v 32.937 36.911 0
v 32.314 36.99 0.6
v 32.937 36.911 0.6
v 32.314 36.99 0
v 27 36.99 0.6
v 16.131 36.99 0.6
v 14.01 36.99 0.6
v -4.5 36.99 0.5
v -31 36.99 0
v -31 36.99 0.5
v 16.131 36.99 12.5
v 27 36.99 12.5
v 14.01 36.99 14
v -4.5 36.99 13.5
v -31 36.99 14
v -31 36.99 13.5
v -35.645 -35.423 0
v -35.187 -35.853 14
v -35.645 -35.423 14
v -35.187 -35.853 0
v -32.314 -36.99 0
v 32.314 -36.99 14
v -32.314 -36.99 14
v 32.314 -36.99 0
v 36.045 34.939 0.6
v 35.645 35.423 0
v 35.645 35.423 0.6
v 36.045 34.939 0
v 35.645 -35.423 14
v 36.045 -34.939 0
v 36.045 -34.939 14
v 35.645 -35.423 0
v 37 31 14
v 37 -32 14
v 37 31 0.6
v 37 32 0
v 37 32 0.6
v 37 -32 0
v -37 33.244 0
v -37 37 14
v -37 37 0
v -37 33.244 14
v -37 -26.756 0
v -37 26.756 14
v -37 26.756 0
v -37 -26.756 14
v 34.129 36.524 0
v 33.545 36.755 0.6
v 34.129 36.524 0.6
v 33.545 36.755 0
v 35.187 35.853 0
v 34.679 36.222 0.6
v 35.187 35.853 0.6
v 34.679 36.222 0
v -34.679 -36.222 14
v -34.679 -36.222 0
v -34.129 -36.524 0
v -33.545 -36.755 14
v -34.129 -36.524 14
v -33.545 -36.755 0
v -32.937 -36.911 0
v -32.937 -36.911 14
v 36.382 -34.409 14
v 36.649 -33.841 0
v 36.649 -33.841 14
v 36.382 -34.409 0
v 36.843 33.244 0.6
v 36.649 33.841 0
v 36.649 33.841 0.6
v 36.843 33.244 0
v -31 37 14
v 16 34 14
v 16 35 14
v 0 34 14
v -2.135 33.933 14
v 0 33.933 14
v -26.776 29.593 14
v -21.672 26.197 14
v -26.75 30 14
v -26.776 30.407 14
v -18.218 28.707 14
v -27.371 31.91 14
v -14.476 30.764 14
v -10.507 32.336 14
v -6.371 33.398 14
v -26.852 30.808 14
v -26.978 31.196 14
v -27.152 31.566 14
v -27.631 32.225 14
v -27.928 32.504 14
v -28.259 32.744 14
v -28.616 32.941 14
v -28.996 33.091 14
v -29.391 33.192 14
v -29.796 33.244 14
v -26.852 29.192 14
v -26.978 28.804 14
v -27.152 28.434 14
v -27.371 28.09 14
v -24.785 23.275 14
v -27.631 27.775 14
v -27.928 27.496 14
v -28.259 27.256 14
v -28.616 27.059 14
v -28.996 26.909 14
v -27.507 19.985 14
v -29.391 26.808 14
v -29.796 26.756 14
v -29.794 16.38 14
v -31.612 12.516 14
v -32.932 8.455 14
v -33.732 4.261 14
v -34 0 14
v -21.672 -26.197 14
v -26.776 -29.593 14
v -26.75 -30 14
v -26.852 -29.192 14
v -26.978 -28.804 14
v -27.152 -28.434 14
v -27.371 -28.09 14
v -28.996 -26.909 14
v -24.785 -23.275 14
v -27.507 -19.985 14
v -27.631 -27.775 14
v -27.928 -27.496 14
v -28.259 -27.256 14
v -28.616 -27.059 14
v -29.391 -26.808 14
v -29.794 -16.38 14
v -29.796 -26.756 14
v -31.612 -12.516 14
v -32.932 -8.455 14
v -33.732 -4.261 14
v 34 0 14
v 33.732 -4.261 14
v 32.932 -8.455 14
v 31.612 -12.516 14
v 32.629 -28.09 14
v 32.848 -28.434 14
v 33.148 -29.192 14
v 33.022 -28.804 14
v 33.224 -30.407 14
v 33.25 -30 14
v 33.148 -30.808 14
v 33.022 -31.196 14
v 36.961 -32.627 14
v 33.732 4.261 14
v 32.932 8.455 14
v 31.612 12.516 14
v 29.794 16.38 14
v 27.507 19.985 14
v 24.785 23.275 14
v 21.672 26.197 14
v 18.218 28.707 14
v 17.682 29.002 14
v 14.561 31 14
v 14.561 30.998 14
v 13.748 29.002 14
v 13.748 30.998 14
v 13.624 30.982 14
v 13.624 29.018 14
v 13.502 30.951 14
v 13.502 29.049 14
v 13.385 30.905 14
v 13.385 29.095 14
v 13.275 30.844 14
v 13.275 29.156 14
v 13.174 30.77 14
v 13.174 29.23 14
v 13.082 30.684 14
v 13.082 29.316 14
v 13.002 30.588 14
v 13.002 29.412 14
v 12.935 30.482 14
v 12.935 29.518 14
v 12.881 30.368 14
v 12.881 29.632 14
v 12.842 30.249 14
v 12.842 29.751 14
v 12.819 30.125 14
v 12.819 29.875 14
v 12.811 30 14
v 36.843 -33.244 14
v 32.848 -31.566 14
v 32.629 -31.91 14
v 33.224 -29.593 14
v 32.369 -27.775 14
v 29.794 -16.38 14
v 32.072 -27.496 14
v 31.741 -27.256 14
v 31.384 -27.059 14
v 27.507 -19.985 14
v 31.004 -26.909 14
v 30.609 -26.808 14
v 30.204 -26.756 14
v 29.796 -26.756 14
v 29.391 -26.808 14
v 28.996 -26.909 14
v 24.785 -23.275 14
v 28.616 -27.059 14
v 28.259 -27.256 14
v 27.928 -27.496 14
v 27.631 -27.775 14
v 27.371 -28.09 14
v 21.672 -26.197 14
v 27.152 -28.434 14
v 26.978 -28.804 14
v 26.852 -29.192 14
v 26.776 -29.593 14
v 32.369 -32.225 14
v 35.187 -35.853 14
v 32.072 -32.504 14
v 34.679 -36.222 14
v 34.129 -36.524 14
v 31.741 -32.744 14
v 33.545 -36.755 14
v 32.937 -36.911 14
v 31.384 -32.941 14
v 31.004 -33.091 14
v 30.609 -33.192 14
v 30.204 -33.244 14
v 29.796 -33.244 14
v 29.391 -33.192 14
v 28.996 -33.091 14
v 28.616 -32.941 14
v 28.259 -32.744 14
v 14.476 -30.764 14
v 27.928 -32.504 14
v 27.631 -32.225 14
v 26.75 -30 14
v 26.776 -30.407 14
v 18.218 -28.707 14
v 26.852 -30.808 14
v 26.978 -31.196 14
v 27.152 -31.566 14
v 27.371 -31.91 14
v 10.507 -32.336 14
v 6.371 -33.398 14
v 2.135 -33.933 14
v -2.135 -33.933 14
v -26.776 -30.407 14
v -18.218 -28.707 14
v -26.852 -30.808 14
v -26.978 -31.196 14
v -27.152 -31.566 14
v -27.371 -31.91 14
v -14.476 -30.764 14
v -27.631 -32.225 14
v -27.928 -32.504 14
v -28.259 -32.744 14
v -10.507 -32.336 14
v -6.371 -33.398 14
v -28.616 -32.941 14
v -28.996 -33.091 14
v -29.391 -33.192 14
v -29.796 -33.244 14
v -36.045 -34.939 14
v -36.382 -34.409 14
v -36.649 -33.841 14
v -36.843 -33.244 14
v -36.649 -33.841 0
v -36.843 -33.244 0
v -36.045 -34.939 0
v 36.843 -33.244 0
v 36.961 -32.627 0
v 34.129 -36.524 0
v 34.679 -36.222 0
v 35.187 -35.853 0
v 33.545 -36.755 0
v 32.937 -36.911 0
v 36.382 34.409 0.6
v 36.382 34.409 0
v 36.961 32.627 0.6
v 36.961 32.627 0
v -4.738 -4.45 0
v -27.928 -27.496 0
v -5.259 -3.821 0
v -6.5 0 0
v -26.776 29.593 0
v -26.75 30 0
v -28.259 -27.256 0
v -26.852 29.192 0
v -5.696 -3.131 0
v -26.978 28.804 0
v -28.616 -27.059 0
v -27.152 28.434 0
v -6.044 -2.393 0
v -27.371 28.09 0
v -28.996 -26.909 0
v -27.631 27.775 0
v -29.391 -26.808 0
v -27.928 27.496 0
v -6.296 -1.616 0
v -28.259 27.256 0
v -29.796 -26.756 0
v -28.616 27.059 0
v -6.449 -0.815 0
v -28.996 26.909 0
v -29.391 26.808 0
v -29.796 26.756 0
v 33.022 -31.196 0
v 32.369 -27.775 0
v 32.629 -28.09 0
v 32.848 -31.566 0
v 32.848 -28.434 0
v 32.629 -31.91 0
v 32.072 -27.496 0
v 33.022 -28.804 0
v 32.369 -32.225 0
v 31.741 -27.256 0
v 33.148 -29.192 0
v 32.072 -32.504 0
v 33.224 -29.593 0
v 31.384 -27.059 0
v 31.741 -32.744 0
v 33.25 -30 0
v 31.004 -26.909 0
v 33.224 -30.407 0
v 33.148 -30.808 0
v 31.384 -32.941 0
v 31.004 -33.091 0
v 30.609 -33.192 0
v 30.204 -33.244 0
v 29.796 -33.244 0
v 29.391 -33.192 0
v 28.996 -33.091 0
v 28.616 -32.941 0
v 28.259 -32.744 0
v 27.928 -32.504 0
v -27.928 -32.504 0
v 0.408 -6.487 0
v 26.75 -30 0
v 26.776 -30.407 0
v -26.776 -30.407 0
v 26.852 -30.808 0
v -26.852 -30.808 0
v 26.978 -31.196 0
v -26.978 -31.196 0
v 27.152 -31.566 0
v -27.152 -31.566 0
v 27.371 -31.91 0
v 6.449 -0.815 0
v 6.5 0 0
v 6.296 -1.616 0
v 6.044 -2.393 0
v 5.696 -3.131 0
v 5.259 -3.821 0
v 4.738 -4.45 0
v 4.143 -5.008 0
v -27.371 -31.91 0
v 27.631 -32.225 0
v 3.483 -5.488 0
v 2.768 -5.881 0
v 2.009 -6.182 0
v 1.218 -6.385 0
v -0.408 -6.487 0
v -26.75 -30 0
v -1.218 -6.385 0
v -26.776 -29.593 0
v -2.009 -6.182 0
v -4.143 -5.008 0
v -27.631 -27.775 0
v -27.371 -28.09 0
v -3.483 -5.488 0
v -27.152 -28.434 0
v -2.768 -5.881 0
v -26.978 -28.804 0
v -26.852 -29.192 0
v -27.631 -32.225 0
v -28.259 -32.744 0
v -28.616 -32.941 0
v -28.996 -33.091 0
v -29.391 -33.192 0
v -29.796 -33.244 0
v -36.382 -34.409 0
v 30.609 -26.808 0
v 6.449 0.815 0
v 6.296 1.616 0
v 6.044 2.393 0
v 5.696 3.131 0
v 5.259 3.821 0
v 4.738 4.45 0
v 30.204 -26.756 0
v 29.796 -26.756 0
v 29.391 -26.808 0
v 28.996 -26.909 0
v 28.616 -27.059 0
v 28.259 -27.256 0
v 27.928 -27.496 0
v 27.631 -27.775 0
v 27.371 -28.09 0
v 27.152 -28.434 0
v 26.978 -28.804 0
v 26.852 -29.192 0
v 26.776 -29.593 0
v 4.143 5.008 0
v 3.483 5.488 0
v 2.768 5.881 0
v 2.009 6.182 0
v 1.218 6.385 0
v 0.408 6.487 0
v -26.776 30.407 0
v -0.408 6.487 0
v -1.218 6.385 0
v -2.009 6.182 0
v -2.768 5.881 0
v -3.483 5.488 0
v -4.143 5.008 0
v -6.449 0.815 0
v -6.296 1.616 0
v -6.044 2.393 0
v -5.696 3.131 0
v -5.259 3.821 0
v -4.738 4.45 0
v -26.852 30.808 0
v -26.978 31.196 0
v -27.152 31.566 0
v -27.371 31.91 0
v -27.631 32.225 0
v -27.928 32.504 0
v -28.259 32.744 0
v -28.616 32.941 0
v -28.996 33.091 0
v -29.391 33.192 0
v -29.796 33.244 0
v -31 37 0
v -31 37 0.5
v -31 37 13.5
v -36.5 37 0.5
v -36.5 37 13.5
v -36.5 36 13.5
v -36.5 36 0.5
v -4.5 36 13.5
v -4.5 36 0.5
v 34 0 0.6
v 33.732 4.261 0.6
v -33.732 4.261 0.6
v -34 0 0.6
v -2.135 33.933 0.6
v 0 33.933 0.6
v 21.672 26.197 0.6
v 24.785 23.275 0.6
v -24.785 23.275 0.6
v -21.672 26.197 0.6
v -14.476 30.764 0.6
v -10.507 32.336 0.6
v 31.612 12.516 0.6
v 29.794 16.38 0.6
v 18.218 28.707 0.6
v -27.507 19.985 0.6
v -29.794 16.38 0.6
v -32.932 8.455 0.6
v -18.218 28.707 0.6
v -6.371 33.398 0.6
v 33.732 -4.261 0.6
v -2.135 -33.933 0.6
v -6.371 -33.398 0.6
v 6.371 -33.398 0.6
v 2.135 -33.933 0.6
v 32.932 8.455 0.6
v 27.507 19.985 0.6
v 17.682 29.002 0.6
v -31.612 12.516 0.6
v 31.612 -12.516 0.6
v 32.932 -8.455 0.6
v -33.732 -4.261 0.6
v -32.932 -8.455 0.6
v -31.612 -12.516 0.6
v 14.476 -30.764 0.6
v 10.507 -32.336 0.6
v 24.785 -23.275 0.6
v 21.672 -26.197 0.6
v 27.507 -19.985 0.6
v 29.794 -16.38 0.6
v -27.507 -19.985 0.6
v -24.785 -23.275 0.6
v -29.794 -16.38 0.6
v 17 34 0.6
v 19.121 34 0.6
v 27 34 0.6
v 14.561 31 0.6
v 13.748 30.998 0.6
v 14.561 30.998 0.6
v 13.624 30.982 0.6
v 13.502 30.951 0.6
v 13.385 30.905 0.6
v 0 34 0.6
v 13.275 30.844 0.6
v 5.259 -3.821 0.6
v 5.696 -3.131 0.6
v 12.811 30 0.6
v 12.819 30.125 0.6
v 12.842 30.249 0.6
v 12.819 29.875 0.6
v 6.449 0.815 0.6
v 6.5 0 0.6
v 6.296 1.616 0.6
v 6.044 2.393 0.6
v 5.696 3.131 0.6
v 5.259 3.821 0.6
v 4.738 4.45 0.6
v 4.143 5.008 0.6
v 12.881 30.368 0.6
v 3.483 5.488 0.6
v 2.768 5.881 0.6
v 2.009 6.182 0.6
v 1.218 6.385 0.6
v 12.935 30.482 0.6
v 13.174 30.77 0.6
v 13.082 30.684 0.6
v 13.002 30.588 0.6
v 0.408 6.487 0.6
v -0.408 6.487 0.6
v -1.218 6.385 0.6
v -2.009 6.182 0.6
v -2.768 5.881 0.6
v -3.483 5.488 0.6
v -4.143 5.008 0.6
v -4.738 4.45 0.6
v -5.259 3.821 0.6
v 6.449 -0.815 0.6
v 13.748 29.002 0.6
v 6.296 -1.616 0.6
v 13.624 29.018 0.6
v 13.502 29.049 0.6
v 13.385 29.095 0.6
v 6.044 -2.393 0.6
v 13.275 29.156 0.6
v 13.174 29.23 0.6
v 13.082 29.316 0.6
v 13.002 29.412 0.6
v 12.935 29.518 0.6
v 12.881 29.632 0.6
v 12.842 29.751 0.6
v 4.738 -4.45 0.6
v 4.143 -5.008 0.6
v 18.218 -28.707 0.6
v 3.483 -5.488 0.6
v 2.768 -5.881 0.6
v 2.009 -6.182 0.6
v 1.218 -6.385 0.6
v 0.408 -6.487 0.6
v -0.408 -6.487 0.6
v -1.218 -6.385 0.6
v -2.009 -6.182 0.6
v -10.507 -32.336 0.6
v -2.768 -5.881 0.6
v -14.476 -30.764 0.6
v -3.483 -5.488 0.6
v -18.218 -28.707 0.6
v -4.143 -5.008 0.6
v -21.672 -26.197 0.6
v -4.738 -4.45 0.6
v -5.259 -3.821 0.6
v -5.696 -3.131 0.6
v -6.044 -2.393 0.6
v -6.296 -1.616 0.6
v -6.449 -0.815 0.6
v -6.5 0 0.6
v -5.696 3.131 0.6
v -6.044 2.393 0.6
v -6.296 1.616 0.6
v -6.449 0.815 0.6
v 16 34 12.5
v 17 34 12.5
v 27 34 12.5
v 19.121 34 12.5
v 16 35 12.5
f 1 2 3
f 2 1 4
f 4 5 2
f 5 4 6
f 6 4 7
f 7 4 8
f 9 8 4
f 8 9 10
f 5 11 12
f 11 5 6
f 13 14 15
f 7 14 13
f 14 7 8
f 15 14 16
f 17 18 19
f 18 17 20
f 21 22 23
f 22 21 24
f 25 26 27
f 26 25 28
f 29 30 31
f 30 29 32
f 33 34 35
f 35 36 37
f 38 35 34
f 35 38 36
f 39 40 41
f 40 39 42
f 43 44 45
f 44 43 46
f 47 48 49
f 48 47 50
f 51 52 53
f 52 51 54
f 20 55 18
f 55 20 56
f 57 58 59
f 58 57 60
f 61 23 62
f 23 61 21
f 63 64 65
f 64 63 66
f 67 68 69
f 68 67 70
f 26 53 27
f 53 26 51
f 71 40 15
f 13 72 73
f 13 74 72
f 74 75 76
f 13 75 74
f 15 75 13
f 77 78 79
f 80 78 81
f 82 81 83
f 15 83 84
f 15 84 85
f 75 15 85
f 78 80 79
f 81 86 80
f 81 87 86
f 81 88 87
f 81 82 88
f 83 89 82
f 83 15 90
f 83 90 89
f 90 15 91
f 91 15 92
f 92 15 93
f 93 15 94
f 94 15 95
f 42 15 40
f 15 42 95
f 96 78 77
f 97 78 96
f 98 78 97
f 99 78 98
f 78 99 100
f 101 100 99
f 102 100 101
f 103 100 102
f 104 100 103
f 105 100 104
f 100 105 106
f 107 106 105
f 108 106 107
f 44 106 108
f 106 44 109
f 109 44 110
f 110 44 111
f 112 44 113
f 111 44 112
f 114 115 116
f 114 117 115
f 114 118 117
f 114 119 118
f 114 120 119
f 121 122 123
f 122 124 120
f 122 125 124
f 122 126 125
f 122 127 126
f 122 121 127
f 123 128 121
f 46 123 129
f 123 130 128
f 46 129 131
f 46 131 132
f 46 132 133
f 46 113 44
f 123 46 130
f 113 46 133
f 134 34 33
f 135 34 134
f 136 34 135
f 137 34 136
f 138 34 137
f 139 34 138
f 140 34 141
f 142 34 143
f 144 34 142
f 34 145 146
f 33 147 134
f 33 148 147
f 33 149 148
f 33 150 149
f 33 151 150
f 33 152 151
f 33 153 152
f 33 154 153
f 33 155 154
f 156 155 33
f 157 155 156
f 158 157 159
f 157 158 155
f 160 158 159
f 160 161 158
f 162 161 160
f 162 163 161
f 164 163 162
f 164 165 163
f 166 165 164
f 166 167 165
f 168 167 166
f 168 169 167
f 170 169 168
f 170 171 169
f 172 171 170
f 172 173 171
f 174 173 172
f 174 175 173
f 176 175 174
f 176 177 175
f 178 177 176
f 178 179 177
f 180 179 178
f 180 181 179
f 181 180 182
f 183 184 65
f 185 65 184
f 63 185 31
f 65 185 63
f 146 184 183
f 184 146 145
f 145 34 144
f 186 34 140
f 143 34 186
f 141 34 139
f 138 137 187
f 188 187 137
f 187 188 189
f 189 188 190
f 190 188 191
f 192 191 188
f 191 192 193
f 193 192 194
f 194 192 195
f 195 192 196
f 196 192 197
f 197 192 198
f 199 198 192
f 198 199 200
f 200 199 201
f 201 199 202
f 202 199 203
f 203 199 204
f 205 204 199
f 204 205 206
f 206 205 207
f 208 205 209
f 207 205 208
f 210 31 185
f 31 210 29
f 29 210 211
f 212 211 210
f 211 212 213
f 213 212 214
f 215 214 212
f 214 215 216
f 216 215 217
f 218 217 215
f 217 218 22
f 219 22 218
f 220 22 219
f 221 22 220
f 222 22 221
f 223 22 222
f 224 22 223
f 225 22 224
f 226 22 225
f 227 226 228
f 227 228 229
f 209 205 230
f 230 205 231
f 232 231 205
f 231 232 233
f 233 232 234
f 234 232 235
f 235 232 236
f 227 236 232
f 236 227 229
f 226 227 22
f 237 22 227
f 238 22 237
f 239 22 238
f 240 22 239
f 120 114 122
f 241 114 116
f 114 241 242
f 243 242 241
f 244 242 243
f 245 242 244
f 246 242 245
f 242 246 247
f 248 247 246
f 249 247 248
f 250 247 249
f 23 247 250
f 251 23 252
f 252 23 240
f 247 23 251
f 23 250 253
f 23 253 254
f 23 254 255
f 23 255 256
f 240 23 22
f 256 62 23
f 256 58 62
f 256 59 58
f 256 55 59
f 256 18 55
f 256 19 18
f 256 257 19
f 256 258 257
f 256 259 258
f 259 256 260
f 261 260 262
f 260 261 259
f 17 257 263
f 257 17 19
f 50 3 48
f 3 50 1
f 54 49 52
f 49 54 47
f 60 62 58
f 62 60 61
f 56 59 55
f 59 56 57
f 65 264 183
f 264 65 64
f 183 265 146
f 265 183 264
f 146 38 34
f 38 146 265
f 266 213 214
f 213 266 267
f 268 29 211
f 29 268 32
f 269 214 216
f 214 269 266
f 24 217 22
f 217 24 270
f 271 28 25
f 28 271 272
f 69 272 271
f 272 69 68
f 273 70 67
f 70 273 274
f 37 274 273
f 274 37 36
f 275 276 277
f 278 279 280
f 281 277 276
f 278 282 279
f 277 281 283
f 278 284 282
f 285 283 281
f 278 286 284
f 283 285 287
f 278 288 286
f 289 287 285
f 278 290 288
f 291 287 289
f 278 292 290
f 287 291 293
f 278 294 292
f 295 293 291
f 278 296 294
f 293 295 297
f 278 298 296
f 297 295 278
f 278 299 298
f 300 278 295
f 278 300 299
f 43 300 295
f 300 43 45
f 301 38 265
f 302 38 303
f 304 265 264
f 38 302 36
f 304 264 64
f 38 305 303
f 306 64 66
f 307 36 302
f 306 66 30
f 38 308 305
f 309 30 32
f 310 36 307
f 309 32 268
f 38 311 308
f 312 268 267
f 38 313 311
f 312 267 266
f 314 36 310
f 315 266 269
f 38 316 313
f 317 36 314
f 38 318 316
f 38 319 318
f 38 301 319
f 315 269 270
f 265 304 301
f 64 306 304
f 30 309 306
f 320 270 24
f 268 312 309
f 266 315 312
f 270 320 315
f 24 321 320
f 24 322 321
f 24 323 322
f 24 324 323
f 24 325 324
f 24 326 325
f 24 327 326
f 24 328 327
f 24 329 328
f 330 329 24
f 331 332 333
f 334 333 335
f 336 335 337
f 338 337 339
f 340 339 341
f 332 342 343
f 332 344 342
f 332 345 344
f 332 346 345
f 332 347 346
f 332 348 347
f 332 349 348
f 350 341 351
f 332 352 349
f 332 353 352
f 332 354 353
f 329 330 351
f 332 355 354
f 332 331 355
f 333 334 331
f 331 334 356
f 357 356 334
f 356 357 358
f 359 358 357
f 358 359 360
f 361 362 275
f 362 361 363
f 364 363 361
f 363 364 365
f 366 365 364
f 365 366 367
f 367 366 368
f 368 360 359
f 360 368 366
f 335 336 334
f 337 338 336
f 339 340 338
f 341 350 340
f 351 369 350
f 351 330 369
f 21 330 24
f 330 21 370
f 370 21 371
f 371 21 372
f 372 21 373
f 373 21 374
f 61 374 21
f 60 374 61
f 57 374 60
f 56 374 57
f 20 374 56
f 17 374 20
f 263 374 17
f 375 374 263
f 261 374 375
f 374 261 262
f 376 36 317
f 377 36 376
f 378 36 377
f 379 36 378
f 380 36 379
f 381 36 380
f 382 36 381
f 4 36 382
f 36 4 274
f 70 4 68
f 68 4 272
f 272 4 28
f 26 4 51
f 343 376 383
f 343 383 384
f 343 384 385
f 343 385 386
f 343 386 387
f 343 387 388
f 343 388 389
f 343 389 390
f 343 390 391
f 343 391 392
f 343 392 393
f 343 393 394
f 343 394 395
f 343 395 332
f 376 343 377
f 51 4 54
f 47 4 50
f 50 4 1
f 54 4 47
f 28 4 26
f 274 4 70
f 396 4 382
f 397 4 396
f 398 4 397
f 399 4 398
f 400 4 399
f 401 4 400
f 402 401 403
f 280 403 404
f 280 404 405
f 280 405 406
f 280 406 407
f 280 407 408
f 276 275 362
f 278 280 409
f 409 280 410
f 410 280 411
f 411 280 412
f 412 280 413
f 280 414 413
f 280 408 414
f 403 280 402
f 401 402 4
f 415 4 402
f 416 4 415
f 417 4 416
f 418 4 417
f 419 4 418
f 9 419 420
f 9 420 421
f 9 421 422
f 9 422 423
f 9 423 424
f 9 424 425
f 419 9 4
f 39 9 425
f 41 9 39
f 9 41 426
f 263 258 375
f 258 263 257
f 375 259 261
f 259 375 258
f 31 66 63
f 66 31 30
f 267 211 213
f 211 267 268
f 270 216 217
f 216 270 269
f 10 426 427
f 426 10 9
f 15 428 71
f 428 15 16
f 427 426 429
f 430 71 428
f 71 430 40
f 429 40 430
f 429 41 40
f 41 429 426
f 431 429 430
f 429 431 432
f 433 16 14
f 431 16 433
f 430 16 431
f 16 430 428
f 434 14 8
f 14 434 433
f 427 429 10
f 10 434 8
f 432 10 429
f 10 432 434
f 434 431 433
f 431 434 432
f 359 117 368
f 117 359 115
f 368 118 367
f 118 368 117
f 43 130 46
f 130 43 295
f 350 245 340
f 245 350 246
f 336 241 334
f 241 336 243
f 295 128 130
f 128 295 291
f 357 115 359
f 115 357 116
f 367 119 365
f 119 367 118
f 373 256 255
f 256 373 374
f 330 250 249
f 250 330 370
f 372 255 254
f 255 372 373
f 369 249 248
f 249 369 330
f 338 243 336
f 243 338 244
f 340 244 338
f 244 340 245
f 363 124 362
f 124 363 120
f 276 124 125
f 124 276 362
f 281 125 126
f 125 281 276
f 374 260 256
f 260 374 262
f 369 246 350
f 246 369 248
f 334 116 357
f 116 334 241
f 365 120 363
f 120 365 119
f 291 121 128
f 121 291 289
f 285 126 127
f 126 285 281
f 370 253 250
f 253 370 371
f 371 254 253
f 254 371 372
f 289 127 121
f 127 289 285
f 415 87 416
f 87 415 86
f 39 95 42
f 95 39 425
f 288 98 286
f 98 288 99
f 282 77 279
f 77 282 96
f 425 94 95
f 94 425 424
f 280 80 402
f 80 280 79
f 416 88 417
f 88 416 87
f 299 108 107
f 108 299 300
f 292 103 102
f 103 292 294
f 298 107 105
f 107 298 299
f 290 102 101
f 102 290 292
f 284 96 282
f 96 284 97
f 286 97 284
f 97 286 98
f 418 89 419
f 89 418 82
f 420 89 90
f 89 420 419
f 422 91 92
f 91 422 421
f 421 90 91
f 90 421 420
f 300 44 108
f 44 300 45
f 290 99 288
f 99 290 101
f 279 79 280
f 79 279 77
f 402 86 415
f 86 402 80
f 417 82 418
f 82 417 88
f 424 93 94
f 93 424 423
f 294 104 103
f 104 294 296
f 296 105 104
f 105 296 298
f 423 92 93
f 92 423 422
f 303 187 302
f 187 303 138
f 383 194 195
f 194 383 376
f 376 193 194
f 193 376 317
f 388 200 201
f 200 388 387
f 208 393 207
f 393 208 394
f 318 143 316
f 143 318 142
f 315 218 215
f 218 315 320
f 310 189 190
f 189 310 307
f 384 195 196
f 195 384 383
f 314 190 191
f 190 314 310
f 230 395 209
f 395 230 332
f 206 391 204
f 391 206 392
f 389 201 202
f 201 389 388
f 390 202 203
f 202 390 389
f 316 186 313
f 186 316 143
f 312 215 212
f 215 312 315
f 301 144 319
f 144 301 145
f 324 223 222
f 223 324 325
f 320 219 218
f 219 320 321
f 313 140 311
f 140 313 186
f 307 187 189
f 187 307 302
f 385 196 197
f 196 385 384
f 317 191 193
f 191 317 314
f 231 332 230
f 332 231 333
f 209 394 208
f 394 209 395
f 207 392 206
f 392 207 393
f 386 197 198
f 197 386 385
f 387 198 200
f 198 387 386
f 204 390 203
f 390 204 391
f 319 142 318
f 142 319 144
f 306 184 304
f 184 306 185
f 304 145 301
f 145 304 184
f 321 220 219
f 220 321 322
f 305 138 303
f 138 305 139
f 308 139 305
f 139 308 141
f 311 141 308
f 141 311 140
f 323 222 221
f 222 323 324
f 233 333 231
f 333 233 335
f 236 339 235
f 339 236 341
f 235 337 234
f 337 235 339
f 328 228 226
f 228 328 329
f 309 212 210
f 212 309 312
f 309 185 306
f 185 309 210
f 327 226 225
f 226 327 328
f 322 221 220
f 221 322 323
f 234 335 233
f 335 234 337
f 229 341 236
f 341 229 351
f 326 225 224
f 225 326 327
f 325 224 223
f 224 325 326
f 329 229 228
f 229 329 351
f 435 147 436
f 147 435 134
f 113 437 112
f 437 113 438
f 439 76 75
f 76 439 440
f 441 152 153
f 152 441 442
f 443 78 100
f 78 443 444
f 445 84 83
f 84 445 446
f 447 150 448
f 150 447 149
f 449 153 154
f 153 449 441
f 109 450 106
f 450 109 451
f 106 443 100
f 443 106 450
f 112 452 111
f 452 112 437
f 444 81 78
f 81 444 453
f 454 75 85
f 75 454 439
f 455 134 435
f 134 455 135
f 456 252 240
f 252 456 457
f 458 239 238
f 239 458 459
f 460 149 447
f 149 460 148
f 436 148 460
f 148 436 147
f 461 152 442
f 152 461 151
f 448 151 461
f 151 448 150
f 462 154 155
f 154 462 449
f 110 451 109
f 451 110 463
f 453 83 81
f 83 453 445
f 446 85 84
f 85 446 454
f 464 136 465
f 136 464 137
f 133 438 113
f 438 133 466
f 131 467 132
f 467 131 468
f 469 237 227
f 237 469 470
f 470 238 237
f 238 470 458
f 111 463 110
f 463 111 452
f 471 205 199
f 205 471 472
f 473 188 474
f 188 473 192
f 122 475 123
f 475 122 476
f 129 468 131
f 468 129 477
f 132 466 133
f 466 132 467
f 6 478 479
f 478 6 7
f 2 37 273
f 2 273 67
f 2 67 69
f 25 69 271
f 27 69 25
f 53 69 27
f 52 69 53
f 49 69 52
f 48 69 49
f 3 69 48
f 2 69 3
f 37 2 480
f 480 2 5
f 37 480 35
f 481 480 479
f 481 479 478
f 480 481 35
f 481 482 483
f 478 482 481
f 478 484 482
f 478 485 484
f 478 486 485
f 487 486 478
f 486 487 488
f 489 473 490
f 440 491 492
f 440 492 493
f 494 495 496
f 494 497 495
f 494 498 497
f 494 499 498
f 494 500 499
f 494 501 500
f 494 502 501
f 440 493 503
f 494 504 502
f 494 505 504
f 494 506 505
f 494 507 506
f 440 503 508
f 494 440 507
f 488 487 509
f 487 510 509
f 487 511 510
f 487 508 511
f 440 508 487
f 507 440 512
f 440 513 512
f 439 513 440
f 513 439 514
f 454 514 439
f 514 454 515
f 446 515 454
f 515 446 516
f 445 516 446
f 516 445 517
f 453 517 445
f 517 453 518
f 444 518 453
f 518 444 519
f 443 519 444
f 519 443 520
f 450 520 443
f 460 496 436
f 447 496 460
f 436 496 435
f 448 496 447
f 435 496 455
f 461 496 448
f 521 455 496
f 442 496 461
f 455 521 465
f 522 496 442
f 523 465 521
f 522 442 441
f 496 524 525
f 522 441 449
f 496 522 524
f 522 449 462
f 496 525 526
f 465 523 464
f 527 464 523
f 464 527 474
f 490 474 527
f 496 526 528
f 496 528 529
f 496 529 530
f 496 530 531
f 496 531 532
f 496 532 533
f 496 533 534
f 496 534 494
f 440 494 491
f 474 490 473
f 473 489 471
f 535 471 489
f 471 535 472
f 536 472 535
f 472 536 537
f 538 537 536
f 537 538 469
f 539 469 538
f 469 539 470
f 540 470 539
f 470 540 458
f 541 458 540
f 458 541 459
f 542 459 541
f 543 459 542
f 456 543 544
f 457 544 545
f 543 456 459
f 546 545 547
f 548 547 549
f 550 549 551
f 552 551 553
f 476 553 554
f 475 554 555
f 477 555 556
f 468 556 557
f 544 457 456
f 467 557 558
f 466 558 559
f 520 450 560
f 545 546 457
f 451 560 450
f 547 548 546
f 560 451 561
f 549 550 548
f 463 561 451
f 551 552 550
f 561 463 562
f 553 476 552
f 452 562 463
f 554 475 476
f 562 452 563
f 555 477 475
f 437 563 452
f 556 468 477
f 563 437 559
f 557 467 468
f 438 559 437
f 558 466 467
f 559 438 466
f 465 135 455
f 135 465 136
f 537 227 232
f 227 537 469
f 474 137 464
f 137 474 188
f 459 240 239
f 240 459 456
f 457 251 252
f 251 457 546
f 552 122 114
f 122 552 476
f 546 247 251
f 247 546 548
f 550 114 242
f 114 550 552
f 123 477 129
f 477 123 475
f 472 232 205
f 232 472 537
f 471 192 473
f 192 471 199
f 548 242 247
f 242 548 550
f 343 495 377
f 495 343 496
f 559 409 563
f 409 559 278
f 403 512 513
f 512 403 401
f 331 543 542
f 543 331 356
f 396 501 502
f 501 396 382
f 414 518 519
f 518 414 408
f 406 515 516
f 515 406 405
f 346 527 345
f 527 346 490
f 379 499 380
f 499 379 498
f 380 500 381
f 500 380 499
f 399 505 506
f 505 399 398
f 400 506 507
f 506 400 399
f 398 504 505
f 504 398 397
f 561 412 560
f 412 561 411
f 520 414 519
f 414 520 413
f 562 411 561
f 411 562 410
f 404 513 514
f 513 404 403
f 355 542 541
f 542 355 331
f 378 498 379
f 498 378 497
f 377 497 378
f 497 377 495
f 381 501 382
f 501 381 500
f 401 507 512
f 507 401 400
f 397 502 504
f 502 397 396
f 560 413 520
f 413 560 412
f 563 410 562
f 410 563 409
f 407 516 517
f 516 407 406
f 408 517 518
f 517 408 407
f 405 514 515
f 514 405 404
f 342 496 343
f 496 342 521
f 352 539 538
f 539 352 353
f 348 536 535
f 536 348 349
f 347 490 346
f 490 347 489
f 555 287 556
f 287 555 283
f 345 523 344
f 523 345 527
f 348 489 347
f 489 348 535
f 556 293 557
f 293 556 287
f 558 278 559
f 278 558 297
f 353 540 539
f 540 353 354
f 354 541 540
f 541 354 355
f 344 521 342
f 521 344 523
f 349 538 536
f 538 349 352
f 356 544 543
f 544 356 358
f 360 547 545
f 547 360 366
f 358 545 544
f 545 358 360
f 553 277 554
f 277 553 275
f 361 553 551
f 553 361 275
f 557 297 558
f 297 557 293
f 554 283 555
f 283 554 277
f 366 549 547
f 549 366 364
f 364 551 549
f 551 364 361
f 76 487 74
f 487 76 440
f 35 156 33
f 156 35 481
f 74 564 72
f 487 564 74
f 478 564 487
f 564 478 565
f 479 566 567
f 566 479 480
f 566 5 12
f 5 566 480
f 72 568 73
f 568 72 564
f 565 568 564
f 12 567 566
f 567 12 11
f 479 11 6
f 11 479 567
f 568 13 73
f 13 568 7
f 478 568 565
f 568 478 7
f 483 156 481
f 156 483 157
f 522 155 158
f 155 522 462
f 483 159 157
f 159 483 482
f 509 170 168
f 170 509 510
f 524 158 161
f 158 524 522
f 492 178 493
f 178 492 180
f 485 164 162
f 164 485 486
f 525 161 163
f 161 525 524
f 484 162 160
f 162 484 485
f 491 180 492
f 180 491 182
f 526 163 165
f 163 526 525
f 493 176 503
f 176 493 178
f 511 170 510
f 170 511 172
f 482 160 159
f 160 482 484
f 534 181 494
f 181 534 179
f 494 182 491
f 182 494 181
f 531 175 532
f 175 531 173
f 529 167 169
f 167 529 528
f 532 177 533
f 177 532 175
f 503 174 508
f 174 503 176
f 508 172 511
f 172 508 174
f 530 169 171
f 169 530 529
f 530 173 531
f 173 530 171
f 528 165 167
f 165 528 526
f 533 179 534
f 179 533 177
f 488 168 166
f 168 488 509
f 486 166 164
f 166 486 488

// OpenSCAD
$fn = 50;


union() {
	difference() {
		union() {
			translate(v = [0, 0, 0]) {
				rotate(a = [0, 0, 0]) {
					hull() {
						translate(v = [-32.0000000000, 32.0000000000, 0]) {
							rotate(a = [0, 0, 0]) {
								translate(v = [0, 0, 0]) {
									rotate(a = [0, 0, 0]) {
										cylinder(h = 14, r = 5);
									}
								}
							}
						}
						translate(v = [32.0000000000, 32.0000000000, 0]) {
							rotate(a = [0, 0, 0]) {
								translate(v = [0, 0, 0]) {
									rotate(a = [0, 0, 0]) {
										cylinder(h = 14, r = 5);
									}
								}
							}
						}
						translate(v = [-32.0000000000, -32.0000000000, 0]) {
							rotate(a = [0, 0, 0]) {
								translate(v = [0, 0, 0]) {
									rotate(a = [0, 0, 0]) {
										cylinder(h = 14, r = 5);
									}
								}
							}
						}
						translate(v = [32.0000000000, -32.0000000000, 0]) {
							rotate(a = [0, 0, 0]) {
								translate(v = [0, 0, 0]) {
									rotate(a = [0, 0, 0]) {
										cylinder(h = 14, r = 5);
									}
								}
							}
						}
					}
				}
			}
			translate(v = [-37.0000000000, 31.0000000000, 0]) {
				rotate(a = [0, 0, 0]) {
					cube(size = [6, 6, 14]);
				}
			}
		}
		union() {
			#translate(v = [-36.5000000000, 36.0000000000, 0.5000000000]) {
				rotate(a = [0, 0, 0]) {
					cube(size = [32, 1, 13.0000000000]);
				}
			}
			translate(v = [-37.5000000000, -30.0000000000, -125]) {
				rotate(a = [0, 0, 0]) {
					hull() {
						translate(v = [7.5000000000, 0, 0]) {
							rotate(a = [0, 0, 0]) {
								translate(v = [0, 0, 0]) {
									rotate(a = [0, 0, 0]) {
										cylinder(h = 250, r = 3.2500000000);
									}
								}
							}
						}
						translate(v = [-7.5000000000, 0, 0]) {
							rotate(a = [0, 0, 0]) {
								translate(v = [0, 0, 0]) {
									rotate(a = [0, 0, 0]) {
										cylinder(h = 250, r = 3.2500000000);
									}
								}
							}
						}
					}
				}
			}
			translate(v = [-37.5000000000, 30.0000000000, -125]) {
				rotate(a = [0, 0, 0]) {
					hull() {
						translate(v = [7.5000000000, 0, 0]) {
							rotate(a = [0, 0, 0]) {
								translate(v = [0, 0, 0]) {
									rotate(a = [0, 0, 0]) {
										cylinder(h = 250, r = 3.2500000000);
									}
								}
							}
						}
						translate(v = [-7.5000000000, 0, 0]) {
							rotate(a = [0, 0, 0]) {
								translate(v = [0, 0, 0]) {
									rotate(a = [0, 0, 0]) {
										cylinder(h = 250, r = 3.2500000000);
									}
								}
							}
						}
					}
				}
			}
			translate(v = [30.0000000000, -30.0000000000, -125.0000000000]) {
				rotate(a = [0, 0, 0]) {
					cylinder(h = 250, r = 3.2500000000);
				}
			}
			translate(v = [0, 0, 0.6000000000]) {
				rotate(a = [0, 0, 0]) {
					cylinder(h = 16.4000000000, r = 34.0000000000);
				}
			}
			translate(v = [0, 0, -7.0000000000]) {
				rotate(a = [0, 0, 0]) {
					cylinder(h = 14, r = 6.5000000000);
				}
			}
			translate(v = [0.0000000000, 31.0000000000, 0.6000000000]) {
				rotate(a = [0, 0, 0]) {
					cube(size = [37.0000000000, 3, 16.4000000000]);
				}
			}
			translate(v = [27.0000000000, 31.0000000000, 0.6000000000]) {
				rotate(a = [0, 0, 0]) {
					cube(size = [10, 6, 16.4000000000]);
				}
			}
			translate(v = [16.0000000000, 31.0000000000, 12.5000000000]) {
				rotate(a = [0, 0, 0]) {
					cube(size = [21, 6, 1.5000000000]);
				}
			}
			translate(v = [13.2500000000, 37.7500000000, 0.6000000000]) {
				rotate(a = [0, 0, -45]) {
					cube(size = [7.5000000000, 1.5000000000, 16.4000000000]);
				}
			}
			translate(v = [7.0610000000, 29.0000000000, 0.6000000000]) {
				rotate(a = [0, 0, 0]) {
					cube(size = [7.5000000000, 2, 13.4000000000]);
				}
			}
		}
	}
	union() {
		translate(v = [16.3110000000, 30.0000000000, 0]) {
			rotate(a = [0, 0, 0]) {
				hull() {
					translate(v = [2.5000000000, 0, 0]) {
						rotate(a = [0, 0, 0]) {
							#translate(v = [0, 0, 0]) {
								rotate(a = [0, 0, 0]) {
									cylinder(h = 14, r = 1.0000000000);
								}
							}
						}
					}
					translate(v = [-2.5000000000, 0, 0]) {
						rotate(a = [0, 0, 0]) {
							#translate(v = [0, 0, 0]) {
								rotate(a = [0, 0, 0]) {
									cylinder(h = 14, r = 1.0000000000);
								}
							}
						}
					}
				}
			}
		}
	}
}
